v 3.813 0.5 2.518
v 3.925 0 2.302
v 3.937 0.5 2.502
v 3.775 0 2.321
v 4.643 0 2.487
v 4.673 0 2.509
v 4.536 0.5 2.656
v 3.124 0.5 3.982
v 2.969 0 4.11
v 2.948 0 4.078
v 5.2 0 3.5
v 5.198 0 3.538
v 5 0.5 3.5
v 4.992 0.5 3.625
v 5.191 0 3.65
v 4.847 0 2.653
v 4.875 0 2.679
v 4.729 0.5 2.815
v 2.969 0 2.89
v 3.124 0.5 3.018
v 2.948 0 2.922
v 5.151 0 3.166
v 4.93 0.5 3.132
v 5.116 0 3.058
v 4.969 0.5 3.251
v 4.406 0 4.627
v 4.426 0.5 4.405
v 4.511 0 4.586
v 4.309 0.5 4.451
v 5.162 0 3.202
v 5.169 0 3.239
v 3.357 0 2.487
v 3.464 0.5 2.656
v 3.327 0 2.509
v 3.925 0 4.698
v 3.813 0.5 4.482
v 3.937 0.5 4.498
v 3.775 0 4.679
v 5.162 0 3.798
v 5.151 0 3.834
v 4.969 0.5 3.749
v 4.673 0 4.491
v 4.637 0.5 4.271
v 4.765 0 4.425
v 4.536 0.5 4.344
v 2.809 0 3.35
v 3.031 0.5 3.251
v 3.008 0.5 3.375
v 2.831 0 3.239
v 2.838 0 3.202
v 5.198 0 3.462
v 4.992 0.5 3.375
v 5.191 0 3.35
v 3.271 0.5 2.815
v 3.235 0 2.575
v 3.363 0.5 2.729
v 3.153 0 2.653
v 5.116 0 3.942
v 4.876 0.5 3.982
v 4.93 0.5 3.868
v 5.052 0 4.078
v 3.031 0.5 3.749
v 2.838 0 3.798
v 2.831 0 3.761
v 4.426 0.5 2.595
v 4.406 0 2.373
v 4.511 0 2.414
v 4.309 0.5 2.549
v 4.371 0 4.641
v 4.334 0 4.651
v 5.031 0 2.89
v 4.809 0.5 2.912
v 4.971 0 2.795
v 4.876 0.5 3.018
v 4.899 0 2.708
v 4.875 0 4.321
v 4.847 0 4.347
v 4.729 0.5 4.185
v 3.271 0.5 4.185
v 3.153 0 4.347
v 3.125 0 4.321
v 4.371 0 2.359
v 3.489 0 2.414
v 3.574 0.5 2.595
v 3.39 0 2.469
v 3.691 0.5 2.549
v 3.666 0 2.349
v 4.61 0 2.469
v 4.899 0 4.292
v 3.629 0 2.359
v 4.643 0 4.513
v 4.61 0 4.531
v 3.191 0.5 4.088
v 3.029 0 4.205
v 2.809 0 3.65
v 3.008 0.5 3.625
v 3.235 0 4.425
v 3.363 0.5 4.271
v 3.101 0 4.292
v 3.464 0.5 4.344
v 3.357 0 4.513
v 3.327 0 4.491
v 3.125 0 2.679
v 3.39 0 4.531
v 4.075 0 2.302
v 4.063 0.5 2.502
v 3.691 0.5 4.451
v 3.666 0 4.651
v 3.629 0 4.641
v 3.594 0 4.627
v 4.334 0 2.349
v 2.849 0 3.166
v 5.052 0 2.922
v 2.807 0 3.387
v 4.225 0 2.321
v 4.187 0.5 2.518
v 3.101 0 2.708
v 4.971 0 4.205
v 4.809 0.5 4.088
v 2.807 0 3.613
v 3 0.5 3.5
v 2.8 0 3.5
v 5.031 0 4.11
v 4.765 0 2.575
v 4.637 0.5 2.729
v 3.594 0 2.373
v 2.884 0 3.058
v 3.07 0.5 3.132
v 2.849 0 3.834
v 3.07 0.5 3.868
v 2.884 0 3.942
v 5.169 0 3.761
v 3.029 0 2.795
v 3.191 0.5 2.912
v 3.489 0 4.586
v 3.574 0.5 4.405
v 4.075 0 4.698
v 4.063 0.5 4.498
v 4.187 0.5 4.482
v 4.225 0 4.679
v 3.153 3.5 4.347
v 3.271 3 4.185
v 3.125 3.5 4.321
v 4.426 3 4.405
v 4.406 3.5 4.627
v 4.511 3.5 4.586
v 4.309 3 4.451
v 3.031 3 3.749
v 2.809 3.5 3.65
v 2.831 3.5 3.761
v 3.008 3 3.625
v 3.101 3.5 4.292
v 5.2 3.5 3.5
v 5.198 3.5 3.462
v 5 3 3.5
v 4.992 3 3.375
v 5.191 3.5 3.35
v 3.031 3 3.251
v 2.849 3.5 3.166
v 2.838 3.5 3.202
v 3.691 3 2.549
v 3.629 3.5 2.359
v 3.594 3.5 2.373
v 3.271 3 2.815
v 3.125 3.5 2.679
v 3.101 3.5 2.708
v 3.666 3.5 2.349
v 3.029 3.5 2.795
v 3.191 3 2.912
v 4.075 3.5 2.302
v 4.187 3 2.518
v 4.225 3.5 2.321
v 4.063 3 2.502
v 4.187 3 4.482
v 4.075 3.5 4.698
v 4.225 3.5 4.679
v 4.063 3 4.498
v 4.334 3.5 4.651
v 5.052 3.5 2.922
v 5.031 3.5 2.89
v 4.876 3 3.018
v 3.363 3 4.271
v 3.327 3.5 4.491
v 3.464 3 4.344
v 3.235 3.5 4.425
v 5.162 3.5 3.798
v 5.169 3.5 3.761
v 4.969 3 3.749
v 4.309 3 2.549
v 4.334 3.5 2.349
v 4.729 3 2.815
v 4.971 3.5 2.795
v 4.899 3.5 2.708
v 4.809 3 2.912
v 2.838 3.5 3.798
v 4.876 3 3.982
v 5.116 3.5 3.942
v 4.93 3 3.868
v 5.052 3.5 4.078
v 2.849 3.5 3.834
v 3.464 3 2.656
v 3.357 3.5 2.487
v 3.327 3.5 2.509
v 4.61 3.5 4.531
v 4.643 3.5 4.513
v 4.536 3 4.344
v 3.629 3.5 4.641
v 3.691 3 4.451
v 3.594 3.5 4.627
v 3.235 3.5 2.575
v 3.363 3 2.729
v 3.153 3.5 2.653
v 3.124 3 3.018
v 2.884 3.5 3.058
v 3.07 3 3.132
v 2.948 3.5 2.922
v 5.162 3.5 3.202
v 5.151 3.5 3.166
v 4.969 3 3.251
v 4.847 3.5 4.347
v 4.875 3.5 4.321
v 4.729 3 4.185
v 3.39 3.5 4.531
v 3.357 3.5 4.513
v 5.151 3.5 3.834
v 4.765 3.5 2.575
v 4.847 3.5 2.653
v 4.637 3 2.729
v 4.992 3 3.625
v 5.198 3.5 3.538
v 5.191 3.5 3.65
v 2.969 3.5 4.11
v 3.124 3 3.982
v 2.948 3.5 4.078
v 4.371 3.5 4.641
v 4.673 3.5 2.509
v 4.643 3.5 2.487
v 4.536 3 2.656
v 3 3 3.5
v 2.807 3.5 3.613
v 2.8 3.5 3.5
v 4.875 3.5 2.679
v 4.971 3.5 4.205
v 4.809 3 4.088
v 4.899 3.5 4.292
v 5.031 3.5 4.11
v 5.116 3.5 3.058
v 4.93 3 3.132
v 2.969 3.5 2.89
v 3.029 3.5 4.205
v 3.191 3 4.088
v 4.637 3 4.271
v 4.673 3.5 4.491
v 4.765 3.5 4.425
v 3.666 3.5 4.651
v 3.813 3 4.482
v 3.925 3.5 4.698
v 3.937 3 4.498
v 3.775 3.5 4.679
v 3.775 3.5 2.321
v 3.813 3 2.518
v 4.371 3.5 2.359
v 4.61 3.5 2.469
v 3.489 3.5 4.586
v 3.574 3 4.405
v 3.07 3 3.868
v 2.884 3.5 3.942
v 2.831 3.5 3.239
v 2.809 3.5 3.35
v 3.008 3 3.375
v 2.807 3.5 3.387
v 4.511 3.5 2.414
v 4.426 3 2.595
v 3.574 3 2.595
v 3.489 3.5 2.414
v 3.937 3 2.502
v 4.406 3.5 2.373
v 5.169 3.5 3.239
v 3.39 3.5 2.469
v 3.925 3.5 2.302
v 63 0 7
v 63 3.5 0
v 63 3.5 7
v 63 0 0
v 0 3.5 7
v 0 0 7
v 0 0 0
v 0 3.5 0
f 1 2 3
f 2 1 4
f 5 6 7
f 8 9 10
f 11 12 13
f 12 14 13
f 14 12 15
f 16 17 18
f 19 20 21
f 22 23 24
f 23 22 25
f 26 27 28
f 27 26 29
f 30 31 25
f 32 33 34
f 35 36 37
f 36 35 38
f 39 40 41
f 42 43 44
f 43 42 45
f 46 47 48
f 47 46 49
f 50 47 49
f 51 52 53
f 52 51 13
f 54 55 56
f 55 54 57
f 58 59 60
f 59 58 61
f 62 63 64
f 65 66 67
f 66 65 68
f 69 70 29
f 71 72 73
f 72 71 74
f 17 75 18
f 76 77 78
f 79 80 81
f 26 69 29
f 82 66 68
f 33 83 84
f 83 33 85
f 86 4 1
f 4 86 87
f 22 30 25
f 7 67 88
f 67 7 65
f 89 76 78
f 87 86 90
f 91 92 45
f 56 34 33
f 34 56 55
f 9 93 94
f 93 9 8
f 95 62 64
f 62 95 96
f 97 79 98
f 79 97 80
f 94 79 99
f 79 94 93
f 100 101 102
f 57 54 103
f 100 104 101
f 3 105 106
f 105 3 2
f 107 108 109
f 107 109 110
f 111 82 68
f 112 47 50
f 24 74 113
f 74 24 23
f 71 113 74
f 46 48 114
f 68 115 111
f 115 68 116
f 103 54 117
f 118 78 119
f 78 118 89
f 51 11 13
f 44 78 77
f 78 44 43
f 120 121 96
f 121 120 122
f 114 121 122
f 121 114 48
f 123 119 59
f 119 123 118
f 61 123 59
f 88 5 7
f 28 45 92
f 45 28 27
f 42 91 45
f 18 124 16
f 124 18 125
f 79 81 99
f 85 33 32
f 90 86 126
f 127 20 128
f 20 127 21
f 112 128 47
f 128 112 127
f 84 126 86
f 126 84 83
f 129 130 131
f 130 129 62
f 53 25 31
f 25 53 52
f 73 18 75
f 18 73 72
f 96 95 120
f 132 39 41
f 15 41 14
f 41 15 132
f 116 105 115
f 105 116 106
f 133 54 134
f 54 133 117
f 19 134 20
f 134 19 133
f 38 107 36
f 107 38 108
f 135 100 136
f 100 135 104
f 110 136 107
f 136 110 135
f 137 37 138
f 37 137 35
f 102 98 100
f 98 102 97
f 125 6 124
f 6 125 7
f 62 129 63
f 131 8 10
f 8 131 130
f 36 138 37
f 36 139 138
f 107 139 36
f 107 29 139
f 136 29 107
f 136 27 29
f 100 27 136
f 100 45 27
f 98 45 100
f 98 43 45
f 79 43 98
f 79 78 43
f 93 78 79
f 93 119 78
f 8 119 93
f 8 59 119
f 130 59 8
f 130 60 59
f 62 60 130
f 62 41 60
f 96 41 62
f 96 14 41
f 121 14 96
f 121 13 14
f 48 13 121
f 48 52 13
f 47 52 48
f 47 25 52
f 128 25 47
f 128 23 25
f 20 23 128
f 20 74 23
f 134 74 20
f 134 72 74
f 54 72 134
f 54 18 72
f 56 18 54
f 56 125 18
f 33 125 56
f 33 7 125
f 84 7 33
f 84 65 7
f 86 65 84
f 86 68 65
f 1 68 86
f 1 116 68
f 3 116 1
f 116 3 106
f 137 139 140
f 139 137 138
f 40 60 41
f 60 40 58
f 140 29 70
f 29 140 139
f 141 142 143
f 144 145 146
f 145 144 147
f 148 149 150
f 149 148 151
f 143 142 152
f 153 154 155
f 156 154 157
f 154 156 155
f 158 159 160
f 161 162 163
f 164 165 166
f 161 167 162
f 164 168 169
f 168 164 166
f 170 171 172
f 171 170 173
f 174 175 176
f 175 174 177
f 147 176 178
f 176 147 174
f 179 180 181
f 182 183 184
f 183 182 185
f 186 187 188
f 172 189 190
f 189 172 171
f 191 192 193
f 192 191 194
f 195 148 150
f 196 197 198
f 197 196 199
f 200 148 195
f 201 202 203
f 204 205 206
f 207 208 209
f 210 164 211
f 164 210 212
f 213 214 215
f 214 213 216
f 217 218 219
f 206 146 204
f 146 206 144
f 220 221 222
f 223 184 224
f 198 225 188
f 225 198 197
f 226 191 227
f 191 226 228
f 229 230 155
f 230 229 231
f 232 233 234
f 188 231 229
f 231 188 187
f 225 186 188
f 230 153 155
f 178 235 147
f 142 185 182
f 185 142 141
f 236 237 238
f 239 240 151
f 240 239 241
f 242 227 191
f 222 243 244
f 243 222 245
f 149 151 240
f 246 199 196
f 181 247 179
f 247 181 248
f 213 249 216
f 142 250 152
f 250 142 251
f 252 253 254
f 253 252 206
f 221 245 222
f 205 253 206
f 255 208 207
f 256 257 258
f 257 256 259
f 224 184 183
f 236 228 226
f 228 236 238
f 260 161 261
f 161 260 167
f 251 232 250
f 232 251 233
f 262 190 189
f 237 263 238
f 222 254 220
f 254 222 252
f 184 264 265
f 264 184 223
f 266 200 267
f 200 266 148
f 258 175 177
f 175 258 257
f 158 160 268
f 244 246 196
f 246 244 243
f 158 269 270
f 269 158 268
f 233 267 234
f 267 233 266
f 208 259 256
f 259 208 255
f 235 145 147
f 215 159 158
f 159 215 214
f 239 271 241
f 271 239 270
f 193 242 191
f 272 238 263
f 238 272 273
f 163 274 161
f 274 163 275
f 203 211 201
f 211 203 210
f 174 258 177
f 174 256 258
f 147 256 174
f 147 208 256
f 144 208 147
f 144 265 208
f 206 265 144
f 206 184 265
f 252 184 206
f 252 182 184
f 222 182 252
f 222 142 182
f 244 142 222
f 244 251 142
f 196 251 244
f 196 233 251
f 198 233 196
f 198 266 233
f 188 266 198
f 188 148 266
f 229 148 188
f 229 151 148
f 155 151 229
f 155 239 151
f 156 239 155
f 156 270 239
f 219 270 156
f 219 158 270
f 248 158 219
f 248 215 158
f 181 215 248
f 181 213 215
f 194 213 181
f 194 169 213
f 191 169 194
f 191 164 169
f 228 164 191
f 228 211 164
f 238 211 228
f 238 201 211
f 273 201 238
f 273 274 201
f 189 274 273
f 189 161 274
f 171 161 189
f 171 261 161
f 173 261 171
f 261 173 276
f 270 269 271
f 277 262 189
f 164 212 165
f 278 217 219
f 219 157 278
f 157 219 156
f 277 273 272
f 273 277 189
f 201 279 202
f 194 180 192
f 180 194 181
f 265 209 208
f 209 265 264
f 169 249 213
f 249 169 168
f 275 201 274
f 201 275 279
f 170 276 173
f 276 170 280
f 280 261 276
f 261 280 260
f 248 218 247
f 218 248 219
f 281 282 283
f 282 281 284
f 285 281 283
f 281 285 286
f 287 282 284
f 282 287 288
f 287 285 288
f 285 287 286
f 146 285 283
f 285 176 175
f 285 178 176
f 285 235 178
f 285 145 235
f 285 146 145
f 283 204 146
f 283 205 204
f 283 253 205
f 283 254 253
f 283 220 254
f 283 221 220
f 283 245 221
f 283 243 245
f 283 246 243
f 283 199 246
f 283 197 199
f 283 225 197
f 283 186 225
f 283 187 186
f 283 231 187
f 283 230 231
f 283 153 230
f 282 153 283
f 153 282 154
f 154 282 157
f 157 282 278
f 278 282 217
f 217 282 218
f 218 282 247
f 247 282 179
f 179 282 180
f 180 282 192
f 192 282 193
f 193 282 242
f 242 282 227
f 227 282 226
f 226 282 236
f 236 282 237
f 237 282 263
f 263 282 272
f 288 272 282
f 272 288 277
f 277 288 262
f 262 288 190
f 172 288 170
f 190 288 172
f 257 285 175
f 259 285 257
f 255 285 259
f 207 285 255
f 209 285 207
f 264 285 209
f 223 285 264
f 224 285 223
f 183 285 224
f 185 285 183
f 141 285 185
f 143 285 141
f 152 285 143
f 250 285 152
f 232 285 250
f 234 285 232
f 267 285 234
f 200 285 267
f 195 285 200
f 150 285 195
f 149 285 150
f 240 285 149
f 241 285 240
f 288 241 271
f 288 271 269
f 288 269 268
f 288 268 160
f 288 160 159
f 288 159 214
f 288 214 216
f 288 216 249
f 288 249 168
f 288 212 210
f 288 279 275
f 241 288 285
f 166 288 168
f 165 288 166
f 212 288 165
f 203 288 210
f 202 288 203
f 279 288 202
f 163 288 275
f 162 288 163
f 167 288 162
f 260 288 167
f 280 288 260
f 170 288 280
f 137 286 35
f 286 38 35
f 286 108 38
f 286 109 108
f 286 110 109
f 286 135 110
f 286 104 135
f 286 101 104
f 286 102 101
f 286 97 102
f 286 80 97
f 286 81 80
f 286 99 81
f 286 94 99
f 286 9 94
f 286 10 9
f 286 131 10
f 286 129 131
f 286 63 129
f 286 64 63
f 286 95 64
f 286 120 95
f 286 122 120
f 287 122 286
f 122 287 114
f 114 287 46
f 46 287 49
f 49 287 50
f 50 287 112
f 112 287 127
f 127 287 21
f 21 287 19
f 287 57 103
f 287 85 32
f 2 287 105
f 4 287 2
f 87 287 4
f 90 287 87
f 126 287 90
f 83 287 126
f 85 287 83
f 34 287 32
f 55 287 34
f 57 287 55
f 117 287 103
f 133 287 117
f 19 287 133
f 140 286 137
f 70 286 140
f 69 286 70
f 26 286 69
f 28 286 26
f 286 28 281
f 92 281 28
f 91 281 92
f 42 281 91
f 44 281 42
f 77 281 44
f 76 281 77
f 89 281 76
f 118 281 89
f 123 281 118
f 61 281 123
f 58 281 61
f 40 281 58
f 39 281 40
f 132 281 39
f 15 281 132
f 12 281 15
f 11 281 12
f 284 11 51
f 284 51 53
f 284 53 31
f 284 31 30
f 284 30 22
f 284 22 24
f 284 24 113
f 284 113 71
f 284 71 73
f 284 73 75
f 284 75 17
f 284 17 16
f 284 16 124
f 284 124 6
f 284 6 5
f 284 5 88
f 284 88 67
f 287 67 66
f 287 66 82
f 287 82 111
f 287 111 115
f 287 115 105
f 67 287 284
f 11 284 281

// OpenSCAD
$fn = 50;

difference() {
cube([63, 3.5 , 7],center=false);

union() {

translate([4,0.5,3.5]) {
rotate(a=90, v=[1,0,0]) {
cylinder(h=5, r1=1, r2=3, center=false);
}
}

translate([4,3,3.5]) {
rotate(a=270, v=[1,0,0]) {
cylinder(h=5, r1=1, r2=3, center=false);
}
}

}

}
